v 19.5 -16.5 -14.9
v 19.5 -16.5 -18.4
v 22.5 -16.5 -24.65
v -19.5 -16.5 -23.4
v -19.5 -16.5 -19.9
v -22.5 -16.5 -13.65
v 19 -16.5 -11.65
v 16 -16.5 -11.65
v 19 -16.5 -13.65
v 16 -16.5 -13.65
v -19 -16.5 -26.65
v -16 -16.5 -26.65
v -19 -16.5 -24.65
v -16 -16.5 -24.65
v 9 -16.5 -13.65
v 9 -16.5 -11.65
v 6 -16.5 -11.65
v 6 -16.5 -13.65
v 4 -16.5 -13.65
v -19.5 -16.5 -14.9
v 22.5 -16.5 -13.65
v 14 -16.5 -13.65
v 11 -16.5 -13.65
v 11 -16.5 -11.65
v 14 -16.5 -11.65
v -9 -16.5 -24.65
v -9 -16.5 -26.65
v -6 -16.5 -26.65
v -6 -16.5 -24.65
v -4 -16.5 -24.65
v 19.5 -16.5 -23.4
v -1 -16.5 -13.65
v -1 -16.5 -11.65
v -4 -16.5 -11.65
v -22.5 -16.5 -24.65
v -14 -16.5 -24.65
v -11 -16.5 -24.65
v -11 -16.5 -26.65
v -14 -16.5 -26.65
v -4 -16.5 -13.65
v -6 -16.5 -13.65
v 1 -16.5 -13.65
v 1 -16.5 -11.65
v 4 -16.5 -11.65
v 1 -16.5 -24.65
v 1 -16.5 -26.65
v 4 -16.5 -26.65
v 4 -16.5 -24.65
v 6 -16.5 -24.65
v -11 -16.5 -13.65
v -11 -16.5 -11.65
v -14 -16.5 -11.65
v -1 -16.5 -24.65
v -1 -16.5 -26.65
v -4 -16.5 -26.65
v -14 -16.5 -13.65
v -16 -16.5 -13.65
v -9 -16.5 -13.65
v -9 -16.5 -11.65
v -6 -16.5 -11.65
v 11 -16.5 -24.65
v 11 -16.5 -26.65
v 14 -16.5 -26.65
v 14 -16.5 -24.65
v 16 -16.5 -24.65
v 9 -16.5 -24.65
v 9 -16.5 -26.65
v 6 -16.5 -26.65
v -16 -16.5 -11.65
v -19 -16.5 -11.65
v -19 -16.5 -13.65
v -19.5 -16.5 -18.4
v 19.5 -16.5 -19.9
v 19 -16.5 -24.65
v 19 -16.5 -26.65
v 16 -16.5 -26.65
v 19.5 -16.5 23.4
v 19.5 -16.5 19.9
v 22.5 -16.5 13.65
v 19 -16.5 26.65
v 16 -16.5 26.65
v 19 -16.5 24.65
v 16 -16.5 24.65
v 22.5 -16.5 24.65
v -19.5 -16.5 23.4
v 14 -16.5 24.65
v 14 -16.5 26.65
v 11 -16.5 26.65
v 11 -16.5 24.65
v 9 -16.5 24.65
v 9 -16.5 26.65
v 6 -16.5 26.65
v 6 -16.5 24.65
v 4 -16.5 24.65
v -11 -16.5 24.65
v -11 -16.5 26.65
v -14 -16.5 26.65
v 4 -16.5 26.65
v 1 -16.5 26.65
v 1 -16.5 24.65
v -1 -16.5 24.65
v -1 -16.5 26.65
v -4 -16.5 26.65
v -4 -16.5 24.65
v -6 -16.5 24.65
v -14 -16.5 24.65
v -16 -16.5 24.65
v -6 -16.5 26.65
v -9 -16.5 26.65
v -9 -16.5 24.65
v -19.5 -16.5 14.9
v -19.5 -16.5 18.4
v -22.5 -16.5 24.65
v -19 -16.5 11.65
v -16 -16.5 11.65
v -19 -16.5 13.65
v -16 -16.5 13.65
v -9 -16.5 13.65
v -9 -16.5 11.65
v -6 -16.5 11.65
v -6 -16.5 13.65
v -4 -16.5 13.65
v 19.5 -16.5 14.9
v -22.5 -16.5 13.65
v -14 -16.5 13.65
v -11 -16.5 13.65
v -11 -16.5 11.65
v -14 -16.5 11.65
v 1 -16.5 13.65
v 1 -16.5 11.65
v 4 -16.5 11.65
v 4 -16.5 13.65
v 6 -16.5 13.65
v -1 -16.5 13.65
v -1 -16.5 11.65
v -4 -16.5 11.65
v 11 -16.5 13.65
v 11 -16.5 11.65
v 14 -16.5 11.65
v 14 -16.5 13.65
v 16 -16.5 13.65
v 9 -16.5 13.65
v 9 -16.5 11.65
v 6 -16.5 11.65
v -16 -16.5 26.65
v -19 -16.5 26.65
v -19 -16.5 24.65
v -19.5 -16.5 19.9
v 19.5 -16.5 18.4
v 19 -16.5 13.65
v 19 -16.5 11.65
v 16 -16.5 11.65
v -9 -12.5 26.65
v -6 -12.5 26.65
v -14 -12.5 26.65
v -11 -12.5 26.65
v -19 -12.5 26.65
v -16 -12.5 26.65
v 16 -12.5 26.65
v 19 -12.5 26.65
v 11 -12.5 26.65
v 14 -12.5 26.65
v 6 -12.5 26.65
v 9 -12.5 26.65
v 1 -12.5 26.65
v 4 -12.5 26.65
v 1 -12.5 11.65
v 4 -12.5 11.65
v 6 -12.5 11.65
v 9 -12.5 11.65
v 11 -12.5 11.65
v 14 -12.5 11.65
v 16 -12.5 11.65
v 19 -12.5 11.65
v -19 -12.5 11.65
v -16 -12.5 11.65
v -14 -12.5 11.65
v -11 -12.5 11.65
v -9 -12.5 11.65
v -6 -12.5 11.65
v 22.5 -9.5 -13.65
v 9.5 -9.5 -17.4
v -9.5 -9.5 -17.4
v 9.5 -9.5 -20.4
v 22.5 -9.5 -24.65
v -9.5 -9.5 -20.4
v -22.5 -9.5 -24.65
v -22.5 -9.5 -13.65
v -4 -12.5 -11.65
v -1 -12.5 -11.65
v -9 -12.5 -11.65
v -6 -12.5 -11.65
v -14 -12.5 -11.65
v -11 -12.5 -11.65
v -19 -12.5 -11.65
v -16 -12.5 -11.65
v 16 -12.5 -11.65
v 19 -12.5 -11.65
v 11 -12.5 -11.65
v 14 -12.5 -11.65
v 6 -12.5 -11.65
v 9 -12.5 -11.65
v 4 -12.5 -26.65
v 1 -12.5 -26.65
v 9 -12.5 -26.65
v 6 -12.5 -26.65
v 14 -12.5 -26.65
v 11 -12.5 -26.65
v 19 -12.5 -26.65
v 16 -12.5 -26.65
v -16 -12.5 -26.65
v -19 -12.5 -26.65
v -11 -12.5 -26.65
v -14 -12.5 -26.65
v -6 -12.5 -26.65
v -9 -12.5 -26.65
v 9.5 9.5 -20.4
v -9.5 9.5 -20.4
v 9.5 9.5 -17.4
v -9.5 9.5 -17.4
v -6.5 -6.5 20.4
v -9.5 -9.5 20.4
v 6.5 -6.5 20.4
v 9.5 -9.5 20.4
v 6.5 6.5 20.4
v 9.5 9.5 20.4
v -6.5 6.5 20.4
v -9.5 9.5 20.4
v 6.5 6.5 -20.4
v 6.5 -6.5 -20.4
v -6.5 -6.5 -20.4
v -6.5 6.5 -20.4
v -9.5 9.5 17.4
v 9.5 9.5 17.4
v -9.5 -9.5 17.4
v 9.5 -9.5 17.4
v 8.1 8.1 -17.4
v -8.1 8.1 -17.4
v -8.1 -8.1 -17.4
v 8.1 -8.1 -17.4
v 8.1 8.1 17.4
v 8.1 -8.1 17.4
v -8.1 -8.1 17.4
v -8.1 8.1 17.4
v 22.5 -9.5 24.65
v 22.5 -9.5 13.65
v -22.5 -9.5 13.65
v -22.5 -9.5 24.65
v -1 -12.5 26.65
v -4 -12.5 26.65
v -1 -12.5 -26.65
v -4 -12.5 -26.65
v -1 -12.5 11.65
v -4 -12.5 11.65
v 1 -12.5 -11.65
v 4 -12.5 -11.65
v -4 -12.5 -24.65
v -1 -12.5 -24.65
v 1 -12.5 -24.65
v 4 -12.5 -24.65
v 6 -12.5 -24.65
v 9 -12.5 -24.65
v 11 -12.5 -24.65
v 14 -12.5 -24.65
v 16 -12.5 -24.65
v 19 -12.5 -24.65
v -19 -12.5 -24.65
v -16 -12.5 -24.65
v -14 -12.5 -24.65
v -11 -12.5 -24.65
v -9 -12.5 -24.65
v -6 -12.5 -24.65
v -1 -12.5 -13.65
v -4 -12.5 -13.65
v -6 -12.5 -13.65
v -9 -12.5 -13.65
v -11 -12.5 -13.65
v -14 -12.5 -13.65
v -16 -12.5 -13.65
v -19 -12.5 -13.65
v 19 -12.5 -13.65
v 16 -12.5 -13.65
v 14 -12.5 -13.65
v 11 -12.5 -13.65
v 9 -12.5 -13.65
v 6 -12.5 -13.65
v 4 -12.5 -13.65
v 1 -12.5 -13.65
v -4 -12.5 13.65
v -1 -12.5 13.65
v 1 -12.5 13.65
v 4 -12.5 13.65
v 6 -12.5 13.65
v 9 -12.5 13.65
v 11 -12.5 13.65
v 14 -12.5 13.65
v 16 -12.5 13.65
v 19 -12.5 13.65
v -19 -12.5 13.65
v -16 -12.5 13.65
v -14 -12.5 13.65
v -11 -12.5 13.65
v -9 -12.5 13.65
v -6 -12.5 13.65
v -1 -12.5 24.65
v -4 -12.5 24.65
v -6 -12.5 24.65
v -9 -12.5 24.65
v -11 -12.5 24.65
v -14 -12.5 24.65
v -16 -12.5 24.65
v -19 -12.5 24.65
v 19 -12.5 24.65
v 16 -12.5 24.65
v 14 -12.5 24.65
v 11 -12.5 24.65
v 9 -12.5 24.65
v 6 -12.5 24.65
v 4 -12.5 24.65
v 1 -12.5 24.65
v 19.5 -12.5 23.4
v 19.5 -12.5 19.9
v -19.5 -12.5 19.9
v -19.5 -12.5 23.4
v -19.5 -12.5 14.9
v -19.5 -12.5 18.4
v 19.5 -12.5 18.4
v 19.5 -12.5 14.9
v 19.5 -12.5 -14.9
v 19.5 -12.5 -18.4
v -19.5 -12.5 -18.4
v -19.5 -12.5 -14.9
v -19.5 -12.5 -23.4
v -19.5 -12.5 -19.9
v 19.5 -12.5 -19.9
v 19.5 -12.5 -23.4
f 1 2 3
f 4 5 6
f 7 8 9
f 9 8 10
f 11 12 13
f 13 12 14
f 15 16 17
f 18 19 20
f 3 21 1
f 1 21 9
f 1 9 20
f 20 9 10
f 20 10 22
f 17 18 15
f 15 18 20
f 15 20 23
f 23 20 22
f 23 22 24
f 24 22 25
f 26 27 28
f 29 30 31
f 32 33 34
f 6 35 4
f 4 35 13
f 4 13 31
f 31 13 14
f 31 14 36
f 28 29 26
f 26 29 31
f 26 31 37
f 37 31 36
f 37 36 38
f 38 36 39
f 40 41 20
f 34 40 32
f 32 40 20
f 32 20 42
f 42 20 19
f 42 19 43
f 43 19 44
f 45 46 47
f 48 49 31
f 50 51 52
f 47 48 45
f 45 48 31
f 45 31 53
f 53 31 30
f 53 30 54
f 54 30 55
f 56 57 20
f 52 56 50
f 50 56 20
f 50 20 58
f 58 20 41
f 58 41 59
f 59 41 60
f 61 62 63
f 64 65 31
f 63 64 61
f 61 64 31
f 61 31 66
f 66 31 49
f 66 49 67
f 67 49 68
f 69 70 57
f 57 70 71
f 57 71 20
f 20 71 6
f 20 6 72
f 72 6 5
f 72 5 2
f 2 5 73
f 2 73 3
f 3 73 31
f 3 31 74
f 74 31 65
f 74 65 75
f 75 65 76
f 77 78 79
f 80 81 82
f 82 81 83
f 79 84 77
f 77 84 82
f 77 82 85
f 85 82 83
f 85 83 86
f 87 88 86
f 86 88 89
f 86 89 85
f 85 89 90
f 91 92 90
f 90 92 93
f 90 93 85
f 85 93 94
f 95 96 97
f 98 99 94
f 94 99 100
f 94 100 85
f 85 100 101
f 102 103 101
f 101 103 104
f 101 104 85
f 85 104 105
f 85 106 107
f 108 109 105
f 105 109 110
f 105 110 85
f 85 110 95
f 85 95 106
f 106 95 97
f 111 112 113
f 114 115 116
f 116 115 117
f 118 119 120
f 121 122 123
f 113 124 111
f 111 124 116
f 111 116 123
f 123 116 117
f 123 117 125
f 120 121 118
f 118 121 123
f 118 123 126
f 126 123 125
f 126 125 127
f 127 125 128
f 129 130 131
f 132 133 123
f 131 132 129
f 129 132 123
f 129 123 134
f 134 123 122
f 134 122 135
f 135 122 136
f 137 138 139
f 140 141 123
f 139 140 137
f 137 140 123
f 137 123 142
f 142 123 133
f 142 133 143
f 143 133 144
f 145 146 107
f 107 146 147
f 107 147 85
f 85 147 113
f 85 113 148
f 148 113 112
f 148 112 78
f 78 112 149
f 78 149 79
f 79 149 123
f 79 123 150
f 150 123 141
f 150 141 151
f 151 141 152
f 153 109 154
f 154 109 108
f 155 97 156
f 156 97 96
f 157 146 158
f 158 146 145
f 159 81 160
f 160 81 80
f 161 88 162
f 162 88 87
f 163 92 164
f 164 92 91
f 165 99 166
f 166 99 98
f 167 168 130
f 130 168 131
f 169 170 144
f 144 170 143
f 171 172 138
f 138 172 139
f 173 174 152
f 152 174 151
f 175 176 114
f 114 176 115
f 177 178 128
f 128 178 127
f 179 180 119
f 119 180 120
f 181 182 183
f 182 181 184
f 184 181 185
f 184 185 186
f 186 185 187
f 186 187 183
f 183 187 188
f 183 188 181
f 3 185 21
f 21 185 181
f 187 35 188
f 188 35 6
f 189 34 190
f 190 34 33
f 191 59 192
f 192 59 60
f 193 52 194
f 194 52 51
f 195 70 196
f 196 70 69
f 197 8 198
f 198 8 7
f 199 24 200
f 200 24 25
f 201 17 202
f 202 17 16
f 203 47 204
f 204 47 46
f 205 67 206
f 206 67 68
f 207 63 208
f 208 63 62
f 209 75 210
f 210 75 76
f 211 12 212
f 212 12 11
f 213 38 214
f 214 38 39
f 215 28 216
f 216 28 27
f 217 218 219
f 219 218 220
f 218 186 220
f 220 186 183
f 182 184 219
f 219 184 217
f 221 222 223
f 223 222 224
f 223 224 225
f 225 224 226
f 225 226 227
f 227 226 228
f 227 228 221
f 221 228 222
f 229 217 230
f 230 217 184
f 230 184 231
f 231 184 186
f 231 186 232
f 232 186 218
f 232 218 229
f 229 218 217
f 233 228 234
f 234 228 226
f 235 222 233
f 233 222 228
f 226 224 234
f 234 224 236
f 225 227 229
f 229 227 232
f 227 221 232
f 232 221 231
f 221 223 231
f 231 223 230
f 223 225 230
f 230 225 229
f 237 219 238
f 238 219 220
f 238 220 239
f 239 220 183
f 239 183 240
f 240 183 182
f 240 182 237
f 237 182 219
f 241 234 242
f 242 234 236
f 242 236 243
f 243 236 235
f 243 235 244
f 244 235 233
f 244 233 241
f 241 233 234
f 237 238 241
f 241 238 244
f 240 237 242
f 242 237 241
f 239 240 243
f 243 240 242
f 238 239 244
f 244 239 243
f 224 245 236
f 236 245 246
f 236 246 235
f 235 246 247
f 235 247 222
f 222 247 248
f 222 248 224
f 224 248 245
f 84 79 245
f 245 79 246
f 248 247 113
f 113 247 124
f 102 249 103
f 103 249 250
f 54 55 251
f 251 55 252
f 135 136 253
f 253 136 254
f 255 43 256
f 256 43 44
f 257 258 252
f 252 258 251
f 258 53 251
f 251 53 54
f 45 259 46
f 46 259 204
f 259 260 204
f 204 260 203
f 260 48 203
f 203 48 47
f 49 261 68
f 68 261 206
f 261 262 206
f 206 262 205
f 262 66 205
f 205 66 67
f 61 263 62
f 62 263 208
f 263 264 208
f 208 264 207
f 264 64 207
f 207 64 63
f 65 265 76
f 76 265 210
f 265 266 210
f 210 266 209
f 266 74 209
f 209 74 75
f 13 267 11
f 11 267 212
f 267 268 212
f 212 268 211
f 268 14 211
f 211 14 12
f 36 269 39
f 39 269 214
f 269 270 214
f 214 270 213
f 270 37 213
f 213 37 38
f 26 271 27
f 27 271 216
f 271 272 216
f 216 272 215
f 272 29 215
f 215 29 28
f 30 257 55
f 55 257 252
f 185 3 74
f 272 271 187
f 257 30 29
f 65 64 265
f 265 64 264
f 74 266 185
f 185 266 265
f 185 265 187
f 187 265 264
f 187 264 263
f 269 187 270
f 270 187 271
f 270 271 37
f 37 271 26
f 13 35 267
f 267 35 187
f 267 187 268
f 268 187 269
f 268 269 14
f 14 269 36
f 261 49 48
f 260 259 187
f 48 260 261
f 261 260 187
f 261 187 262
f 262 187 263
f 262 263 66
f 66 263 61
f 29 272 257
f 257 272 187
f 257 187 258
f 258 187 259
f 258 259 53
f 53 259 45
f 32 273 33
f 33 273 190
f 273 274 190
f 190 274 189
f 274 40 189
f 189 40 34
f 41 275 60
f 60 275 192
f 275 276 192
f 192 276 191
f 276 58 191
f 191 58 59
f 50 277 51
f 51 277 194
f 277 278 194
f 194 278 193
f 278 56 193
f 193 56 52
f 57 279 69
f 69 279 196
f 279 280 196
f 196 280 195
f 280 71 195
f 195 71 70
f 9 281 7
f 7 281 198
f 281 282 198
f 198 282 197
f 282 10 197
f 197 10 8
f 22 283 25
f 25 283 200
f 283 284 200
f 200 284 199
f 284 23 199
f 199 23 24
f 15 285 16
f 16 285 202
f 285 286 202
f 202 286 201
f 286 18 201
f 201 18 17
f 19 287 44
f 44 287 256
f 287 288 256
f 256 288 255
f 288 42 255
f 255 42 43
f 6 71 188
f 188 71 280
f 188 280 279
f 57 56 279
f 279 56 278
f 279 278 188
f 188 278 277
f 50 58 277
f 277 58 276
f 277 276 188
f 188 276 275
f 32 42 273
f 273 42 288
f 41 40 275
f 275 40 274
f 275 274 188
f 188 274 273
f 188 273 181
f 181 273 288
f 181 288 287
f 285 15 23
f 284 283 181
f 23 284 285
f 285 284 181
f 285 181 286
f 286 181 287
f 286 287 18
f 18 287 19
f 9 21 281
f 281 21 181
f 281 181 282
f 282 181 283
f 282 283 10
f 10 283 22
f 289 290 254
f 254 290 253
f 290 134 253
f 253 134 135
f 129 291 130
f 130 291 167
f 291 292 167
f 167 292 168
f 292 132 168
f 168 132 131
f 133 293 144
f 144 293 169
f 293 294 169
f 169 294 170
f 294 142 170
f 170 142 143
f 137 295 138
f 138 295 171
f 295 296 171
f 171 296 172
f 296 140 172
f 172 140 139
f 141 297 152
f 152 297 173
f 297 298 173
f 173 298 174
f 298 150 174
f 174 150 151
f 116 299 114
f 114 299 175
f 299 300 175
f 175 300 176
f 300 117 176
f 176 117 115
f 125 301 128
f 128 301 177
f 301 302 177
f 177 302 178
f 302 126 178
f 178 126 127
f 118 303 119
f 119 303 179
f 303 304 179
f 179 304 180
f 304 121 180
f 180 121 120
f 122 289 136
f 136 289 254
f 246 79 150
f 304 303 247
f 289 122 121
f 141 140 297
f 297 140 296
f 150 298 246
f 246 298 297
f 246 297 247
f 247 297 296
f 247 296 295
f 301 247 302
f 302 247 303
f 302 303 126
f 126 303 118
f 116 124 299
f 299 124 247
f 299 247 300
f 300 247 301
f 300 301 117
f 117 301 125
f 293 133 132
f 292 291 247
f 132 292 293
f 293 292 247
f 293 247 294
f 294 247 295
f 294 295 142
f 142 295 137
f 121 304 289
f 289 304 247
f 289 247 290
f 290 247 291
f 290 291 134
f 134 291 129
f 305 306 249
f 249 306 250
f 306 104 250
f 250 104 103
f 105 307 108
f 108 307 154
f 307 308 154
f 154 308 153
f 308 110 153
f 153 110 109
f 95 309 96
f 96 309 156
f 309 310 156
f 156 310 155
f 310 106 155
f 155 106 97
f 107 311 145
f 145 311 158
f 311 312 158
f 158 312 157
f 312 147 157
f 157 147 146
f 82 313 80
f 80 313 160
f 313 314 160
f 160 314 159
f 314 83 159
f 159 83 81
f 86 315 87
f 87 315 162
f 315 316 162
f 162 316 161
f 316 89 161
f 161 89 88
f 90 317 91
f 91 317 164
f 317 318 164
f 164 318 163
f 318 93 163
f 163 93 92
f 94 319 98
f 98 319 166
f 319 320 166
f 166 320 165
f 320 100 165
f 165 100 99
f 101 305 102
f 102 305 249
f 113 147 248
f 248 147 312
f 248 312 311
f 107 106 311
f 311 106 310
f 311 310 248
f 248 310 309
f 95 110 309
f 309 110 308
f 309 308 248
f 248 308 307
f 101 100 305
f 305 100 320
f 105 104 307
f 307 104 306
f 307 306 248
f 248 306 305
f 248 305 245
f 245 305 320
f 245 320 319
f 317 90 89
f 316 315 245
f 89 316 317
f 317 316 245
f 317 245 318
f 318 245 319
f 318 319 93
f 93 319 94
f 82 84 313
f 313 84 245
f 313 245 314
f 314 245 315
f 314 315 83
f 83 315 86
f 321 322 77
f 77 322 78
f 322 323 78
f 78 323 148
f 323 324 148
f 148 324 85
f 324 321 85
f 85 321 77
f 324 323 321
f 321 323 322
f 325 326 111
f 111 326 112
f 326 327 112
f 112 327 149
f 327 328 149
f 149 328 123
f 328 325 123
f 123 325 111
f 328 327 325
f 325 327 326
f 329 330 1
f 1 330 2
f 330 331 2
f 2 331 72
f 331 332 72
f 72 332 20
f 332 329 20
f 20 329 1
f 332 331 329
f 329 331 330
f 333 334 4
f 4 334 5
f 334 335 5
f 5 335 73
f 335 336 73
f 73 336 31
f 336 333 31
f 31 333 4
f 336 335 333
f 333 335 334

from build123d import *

# Parameters (mm, degrees)
SKETCH_1_W           = 19
SKETCH_1_H           = 19
SKETCH_1_W_2         = 13
SKETCH_1_H_2         = 13
EXTRUDE_2_DEPTH      = 20.4
SKETCH_1_3_W         = 19
SKETCH_1_3_H         = 19
SKETCH_1_3_W_2       = 16.2
SKETCH_1_3_H_2       = 16.2
CUT_EXTRUDE_1_DEPTH  = 17.4
EXTRUDE_4_DEPTH      = 26.65
CUT_EXTRUDE_4_DEPTH  = 11.65
CUT_EXTRUDE_9_DEPTH  = 2
CUT_EXTRUDE_10_DEPTH = 2
CUT_EXTRUDE_11_DEPTH = 2
CUT_EXTRUDE_12_DEPTH = 2
SKETCH_12_W          = 39
SKETCH_12_H          = 3.5
CUT_EXTRUDE_13_DEPTH = 4


with BuildPart() as part:
    # 草图1 → 凸台-拉伸2 (new, symmetric)
    with BuildSketch(Plane.XY):
        Rectangle(SKETCH_1_W, SKETCH_1_H)
        Rectangle(SKETCH_1_W_2, SKETCH_1_H_2, mode=Mode.SUBTRACT)
    extrude(amount=EXTRUDE_2_DEPTH, both=True)

    # 草图1<3> → 切除-拉伸1 (cut, symmetric)
    with BuildSketch(Plane.XY):
        Rectangle(SKETCH_1_3_W, SKETCH_1_3_H)
        Rectangle(SKETCH_1_3_W_2, SKETCH_1_3_H_2, mode=Mode.SUBTRACT)
    extrude(amount=CUT_EXTRUDE_1_DEPTH, both=True, mode=Mode.SUBTRACT)

    # 草图2 → 凸台-拉伸4 (add, symmetric)
    with BuildSketch(Plane.XY):
        Polygon((22.5, -9.5), (0, -9.5), (-22.5, -9.5), (-22.5, -16.5), (22.5, -16.5), align=None)
    extrude(amount=EXTRUDE_4_DEPTH, both=True)

    # 草图2<6> → 切除-拉伸4 (cut, symmetric)
    with BuildSketch(Plane.XY):
        Polygon((22.5, -9.5), (0, -9.5), (-22.5, -9.5), (-22.5, -16.5), (22.5, -16.5), align=None)
    extrude(amount=CUT_EXTRUDE_4_DEPTH, both=True, mode=Mode.SUBTRACT)

    # 草图4 → 切除-拉伸9 (cut)
    with BuildSketch(Plane(origin=(0, 0, -26.65), x_dir=(-1, 0, 0), z_dir=(0, 0, -1))):
        Polygon((-6, -12.5), (-6, -16.5), (-4, -16.5), (-4, -12.5), (-2.5, -12.5), (-1, -12.5), (-1, -16.5), (1, -16.5), (1, -12.5), (2.5, -12.5), (4, -12.5), (4, -16.5), (6, -16.5), (6, -12.5), (7.5, -12.5), (9, -12.5), (9, -16.5), (11, -16.5), (11, -12.5), (12.5, -12.5), (14, -12.5), (14, -16.5), (16, -16.5), (16, -12.5), (17.5, -12.5), (19, -12.5), (19, -16.5), (22.5, -16.5), (22.5, -9.5), (-22.5, -9.5), (-22.5, -16.5), (-19, -16.5), (-19, -12.5), (-17.5, -12.5), (-16, -12.5), (-16, -16.5), (-14, -16.5), (-14, -12.5), (-12.5, -12.5), (-11, -12.5), (-11, -16.5), (-9, -16.5), (-9, -12.5), (-7.5, -12.5), align=None)
    extrude(amount=-CUT_EXTRUDE_9_DEPTH, mode=Mode.SUBTRACT)

    # 草图9 → 切除-拉伸10 (cut)
    with BuildSketch(Plane.XY.offset(-11.65)):
        Polygon((-4, -12.5), (-1, -12.5), (-1, -16.5), (1, -16.5), (1, -12.5), (4, -12.5), (4, -16.5), (6, -16.5), (6, -12.5), (9, -12.5), (9, -16.5), (11, -16.5), (11, -12.5), (14, -12.5), (14, -16.5), (16, -16.5), (16, -12.5), (19, -12.5), (19, -16.5), (22.5, -16.5), (22.5, -9.5), (-22.5, -9.5), (-22.5, -16.5), (-19, -16.5), (-19, -12.5), (-16, -12.5), (-16, -16.5), (-14, -16.5), (-14, -12.5), (-11, -12.5), (-11, -16.5), (-9, -16.5), (-9, -12.5), (-6, -12.5), (-6, -16.5), (-4, -16.5), align=None)
    extrude(amount=-CUT_EXTRUDE_10_DEPTH, mode=Mode.SUBTRACT)

    # 草图10 → 切除-拉伸11 (cut)
    with BuildSketch(Plane(origin=(0, 0, 11.65), x_dir=(-1, 0, 0), z_dir=(0, 0, -1))):
        Polygon((1, -16.5), (1, -12.5), (4, -12.5), (4, -16.5), (6, -16.5), (6, -12.5), (9, -12.5), (9, -16.5), (11, -16.5), (11, -12.5), (14, -12.5), (14, -16.5), (16, -16.5), (16, -12.5), (19, -12.5), (19, -16.5), (22.5, -16.5), (22.5, -9.5), (-22.5, -9.5), (-22.5, -16.5), (-19, -16.5), (-19, -12.5), (-16, -12.5), (-16, -16.5), (-14, -16.5), (-14, -12.5), (-11, -12.5), (-11, -16.5), (-9, -16.5), (-9, -12.5), (-6, -12.5), (-6, -16.5), (-4, -16.5), (-4, -12.5), (-1, -12.5), (-1, -16.5), align=None)
    extrude(amount=-CUT_EXTRUDE_11_DEPTH, mode=Mode.SUBTRACT)

    # 草图11 → 切除-拉伸12 (cut)
    with BuildSketch(Plane.XY.offset(26.65)):
        Polygon((-1, -12.5), (-1, -16.5), (1, -16.5), (1, -12.5), (4, -12.5), (4, -16.5), (6, -16.5), (6, -12.5), (9, -12.5), (9, -16.5), (11, -16.5), (11, -12.5), (14, -12.5), (14, -16.5), (16, -16.5), (16, -12.5), (19, -12.5), (19, -16.5), (22.5, -16.5), (22.5, -9.5), (-22.5, -9.5), (-22.5, -16.5), (-19, -16.5), (-19, -12.5), (-16, -12.5), (-16, -16.5), (-14, -16.5), (-14, -12.5), (-11, -12.5), (-11, -16.5), (-9, -16.5), (-9, -12.5), (-6, -12.5), (-6, -16.5), (-4, -16.5), (-4, -12.5), align=None)
    extrude(amount=-CUT_EXTRUDE_12_DEPTH, mode=Mode.SUBTRACT)

    # 草图12 → 切除-拉伸13 (cut)
    with BuildSketch(Plane.XZ.offset(16.5)):
        with Locations((0, 21.65)):
            Rectangle(SKETCH_12_W, SKETCH_12_H)
        with Locations((0, -21.65)):
            Rectangle(SKETCH_12_W, SKETCH_12_H)
        with Locations((0, -16.65)):
            Rectangle(SKETCH_12_W, SKETCH_12_H)
        with Locations((0, 16.65)):
            Rectangle(SKETCH_12_W, SKETCH_12_H)
    extrude(amount=-CUT_EXTRUDE_13_DEPTH, mode=Mode.SUBTRACT)


solid = part.part
